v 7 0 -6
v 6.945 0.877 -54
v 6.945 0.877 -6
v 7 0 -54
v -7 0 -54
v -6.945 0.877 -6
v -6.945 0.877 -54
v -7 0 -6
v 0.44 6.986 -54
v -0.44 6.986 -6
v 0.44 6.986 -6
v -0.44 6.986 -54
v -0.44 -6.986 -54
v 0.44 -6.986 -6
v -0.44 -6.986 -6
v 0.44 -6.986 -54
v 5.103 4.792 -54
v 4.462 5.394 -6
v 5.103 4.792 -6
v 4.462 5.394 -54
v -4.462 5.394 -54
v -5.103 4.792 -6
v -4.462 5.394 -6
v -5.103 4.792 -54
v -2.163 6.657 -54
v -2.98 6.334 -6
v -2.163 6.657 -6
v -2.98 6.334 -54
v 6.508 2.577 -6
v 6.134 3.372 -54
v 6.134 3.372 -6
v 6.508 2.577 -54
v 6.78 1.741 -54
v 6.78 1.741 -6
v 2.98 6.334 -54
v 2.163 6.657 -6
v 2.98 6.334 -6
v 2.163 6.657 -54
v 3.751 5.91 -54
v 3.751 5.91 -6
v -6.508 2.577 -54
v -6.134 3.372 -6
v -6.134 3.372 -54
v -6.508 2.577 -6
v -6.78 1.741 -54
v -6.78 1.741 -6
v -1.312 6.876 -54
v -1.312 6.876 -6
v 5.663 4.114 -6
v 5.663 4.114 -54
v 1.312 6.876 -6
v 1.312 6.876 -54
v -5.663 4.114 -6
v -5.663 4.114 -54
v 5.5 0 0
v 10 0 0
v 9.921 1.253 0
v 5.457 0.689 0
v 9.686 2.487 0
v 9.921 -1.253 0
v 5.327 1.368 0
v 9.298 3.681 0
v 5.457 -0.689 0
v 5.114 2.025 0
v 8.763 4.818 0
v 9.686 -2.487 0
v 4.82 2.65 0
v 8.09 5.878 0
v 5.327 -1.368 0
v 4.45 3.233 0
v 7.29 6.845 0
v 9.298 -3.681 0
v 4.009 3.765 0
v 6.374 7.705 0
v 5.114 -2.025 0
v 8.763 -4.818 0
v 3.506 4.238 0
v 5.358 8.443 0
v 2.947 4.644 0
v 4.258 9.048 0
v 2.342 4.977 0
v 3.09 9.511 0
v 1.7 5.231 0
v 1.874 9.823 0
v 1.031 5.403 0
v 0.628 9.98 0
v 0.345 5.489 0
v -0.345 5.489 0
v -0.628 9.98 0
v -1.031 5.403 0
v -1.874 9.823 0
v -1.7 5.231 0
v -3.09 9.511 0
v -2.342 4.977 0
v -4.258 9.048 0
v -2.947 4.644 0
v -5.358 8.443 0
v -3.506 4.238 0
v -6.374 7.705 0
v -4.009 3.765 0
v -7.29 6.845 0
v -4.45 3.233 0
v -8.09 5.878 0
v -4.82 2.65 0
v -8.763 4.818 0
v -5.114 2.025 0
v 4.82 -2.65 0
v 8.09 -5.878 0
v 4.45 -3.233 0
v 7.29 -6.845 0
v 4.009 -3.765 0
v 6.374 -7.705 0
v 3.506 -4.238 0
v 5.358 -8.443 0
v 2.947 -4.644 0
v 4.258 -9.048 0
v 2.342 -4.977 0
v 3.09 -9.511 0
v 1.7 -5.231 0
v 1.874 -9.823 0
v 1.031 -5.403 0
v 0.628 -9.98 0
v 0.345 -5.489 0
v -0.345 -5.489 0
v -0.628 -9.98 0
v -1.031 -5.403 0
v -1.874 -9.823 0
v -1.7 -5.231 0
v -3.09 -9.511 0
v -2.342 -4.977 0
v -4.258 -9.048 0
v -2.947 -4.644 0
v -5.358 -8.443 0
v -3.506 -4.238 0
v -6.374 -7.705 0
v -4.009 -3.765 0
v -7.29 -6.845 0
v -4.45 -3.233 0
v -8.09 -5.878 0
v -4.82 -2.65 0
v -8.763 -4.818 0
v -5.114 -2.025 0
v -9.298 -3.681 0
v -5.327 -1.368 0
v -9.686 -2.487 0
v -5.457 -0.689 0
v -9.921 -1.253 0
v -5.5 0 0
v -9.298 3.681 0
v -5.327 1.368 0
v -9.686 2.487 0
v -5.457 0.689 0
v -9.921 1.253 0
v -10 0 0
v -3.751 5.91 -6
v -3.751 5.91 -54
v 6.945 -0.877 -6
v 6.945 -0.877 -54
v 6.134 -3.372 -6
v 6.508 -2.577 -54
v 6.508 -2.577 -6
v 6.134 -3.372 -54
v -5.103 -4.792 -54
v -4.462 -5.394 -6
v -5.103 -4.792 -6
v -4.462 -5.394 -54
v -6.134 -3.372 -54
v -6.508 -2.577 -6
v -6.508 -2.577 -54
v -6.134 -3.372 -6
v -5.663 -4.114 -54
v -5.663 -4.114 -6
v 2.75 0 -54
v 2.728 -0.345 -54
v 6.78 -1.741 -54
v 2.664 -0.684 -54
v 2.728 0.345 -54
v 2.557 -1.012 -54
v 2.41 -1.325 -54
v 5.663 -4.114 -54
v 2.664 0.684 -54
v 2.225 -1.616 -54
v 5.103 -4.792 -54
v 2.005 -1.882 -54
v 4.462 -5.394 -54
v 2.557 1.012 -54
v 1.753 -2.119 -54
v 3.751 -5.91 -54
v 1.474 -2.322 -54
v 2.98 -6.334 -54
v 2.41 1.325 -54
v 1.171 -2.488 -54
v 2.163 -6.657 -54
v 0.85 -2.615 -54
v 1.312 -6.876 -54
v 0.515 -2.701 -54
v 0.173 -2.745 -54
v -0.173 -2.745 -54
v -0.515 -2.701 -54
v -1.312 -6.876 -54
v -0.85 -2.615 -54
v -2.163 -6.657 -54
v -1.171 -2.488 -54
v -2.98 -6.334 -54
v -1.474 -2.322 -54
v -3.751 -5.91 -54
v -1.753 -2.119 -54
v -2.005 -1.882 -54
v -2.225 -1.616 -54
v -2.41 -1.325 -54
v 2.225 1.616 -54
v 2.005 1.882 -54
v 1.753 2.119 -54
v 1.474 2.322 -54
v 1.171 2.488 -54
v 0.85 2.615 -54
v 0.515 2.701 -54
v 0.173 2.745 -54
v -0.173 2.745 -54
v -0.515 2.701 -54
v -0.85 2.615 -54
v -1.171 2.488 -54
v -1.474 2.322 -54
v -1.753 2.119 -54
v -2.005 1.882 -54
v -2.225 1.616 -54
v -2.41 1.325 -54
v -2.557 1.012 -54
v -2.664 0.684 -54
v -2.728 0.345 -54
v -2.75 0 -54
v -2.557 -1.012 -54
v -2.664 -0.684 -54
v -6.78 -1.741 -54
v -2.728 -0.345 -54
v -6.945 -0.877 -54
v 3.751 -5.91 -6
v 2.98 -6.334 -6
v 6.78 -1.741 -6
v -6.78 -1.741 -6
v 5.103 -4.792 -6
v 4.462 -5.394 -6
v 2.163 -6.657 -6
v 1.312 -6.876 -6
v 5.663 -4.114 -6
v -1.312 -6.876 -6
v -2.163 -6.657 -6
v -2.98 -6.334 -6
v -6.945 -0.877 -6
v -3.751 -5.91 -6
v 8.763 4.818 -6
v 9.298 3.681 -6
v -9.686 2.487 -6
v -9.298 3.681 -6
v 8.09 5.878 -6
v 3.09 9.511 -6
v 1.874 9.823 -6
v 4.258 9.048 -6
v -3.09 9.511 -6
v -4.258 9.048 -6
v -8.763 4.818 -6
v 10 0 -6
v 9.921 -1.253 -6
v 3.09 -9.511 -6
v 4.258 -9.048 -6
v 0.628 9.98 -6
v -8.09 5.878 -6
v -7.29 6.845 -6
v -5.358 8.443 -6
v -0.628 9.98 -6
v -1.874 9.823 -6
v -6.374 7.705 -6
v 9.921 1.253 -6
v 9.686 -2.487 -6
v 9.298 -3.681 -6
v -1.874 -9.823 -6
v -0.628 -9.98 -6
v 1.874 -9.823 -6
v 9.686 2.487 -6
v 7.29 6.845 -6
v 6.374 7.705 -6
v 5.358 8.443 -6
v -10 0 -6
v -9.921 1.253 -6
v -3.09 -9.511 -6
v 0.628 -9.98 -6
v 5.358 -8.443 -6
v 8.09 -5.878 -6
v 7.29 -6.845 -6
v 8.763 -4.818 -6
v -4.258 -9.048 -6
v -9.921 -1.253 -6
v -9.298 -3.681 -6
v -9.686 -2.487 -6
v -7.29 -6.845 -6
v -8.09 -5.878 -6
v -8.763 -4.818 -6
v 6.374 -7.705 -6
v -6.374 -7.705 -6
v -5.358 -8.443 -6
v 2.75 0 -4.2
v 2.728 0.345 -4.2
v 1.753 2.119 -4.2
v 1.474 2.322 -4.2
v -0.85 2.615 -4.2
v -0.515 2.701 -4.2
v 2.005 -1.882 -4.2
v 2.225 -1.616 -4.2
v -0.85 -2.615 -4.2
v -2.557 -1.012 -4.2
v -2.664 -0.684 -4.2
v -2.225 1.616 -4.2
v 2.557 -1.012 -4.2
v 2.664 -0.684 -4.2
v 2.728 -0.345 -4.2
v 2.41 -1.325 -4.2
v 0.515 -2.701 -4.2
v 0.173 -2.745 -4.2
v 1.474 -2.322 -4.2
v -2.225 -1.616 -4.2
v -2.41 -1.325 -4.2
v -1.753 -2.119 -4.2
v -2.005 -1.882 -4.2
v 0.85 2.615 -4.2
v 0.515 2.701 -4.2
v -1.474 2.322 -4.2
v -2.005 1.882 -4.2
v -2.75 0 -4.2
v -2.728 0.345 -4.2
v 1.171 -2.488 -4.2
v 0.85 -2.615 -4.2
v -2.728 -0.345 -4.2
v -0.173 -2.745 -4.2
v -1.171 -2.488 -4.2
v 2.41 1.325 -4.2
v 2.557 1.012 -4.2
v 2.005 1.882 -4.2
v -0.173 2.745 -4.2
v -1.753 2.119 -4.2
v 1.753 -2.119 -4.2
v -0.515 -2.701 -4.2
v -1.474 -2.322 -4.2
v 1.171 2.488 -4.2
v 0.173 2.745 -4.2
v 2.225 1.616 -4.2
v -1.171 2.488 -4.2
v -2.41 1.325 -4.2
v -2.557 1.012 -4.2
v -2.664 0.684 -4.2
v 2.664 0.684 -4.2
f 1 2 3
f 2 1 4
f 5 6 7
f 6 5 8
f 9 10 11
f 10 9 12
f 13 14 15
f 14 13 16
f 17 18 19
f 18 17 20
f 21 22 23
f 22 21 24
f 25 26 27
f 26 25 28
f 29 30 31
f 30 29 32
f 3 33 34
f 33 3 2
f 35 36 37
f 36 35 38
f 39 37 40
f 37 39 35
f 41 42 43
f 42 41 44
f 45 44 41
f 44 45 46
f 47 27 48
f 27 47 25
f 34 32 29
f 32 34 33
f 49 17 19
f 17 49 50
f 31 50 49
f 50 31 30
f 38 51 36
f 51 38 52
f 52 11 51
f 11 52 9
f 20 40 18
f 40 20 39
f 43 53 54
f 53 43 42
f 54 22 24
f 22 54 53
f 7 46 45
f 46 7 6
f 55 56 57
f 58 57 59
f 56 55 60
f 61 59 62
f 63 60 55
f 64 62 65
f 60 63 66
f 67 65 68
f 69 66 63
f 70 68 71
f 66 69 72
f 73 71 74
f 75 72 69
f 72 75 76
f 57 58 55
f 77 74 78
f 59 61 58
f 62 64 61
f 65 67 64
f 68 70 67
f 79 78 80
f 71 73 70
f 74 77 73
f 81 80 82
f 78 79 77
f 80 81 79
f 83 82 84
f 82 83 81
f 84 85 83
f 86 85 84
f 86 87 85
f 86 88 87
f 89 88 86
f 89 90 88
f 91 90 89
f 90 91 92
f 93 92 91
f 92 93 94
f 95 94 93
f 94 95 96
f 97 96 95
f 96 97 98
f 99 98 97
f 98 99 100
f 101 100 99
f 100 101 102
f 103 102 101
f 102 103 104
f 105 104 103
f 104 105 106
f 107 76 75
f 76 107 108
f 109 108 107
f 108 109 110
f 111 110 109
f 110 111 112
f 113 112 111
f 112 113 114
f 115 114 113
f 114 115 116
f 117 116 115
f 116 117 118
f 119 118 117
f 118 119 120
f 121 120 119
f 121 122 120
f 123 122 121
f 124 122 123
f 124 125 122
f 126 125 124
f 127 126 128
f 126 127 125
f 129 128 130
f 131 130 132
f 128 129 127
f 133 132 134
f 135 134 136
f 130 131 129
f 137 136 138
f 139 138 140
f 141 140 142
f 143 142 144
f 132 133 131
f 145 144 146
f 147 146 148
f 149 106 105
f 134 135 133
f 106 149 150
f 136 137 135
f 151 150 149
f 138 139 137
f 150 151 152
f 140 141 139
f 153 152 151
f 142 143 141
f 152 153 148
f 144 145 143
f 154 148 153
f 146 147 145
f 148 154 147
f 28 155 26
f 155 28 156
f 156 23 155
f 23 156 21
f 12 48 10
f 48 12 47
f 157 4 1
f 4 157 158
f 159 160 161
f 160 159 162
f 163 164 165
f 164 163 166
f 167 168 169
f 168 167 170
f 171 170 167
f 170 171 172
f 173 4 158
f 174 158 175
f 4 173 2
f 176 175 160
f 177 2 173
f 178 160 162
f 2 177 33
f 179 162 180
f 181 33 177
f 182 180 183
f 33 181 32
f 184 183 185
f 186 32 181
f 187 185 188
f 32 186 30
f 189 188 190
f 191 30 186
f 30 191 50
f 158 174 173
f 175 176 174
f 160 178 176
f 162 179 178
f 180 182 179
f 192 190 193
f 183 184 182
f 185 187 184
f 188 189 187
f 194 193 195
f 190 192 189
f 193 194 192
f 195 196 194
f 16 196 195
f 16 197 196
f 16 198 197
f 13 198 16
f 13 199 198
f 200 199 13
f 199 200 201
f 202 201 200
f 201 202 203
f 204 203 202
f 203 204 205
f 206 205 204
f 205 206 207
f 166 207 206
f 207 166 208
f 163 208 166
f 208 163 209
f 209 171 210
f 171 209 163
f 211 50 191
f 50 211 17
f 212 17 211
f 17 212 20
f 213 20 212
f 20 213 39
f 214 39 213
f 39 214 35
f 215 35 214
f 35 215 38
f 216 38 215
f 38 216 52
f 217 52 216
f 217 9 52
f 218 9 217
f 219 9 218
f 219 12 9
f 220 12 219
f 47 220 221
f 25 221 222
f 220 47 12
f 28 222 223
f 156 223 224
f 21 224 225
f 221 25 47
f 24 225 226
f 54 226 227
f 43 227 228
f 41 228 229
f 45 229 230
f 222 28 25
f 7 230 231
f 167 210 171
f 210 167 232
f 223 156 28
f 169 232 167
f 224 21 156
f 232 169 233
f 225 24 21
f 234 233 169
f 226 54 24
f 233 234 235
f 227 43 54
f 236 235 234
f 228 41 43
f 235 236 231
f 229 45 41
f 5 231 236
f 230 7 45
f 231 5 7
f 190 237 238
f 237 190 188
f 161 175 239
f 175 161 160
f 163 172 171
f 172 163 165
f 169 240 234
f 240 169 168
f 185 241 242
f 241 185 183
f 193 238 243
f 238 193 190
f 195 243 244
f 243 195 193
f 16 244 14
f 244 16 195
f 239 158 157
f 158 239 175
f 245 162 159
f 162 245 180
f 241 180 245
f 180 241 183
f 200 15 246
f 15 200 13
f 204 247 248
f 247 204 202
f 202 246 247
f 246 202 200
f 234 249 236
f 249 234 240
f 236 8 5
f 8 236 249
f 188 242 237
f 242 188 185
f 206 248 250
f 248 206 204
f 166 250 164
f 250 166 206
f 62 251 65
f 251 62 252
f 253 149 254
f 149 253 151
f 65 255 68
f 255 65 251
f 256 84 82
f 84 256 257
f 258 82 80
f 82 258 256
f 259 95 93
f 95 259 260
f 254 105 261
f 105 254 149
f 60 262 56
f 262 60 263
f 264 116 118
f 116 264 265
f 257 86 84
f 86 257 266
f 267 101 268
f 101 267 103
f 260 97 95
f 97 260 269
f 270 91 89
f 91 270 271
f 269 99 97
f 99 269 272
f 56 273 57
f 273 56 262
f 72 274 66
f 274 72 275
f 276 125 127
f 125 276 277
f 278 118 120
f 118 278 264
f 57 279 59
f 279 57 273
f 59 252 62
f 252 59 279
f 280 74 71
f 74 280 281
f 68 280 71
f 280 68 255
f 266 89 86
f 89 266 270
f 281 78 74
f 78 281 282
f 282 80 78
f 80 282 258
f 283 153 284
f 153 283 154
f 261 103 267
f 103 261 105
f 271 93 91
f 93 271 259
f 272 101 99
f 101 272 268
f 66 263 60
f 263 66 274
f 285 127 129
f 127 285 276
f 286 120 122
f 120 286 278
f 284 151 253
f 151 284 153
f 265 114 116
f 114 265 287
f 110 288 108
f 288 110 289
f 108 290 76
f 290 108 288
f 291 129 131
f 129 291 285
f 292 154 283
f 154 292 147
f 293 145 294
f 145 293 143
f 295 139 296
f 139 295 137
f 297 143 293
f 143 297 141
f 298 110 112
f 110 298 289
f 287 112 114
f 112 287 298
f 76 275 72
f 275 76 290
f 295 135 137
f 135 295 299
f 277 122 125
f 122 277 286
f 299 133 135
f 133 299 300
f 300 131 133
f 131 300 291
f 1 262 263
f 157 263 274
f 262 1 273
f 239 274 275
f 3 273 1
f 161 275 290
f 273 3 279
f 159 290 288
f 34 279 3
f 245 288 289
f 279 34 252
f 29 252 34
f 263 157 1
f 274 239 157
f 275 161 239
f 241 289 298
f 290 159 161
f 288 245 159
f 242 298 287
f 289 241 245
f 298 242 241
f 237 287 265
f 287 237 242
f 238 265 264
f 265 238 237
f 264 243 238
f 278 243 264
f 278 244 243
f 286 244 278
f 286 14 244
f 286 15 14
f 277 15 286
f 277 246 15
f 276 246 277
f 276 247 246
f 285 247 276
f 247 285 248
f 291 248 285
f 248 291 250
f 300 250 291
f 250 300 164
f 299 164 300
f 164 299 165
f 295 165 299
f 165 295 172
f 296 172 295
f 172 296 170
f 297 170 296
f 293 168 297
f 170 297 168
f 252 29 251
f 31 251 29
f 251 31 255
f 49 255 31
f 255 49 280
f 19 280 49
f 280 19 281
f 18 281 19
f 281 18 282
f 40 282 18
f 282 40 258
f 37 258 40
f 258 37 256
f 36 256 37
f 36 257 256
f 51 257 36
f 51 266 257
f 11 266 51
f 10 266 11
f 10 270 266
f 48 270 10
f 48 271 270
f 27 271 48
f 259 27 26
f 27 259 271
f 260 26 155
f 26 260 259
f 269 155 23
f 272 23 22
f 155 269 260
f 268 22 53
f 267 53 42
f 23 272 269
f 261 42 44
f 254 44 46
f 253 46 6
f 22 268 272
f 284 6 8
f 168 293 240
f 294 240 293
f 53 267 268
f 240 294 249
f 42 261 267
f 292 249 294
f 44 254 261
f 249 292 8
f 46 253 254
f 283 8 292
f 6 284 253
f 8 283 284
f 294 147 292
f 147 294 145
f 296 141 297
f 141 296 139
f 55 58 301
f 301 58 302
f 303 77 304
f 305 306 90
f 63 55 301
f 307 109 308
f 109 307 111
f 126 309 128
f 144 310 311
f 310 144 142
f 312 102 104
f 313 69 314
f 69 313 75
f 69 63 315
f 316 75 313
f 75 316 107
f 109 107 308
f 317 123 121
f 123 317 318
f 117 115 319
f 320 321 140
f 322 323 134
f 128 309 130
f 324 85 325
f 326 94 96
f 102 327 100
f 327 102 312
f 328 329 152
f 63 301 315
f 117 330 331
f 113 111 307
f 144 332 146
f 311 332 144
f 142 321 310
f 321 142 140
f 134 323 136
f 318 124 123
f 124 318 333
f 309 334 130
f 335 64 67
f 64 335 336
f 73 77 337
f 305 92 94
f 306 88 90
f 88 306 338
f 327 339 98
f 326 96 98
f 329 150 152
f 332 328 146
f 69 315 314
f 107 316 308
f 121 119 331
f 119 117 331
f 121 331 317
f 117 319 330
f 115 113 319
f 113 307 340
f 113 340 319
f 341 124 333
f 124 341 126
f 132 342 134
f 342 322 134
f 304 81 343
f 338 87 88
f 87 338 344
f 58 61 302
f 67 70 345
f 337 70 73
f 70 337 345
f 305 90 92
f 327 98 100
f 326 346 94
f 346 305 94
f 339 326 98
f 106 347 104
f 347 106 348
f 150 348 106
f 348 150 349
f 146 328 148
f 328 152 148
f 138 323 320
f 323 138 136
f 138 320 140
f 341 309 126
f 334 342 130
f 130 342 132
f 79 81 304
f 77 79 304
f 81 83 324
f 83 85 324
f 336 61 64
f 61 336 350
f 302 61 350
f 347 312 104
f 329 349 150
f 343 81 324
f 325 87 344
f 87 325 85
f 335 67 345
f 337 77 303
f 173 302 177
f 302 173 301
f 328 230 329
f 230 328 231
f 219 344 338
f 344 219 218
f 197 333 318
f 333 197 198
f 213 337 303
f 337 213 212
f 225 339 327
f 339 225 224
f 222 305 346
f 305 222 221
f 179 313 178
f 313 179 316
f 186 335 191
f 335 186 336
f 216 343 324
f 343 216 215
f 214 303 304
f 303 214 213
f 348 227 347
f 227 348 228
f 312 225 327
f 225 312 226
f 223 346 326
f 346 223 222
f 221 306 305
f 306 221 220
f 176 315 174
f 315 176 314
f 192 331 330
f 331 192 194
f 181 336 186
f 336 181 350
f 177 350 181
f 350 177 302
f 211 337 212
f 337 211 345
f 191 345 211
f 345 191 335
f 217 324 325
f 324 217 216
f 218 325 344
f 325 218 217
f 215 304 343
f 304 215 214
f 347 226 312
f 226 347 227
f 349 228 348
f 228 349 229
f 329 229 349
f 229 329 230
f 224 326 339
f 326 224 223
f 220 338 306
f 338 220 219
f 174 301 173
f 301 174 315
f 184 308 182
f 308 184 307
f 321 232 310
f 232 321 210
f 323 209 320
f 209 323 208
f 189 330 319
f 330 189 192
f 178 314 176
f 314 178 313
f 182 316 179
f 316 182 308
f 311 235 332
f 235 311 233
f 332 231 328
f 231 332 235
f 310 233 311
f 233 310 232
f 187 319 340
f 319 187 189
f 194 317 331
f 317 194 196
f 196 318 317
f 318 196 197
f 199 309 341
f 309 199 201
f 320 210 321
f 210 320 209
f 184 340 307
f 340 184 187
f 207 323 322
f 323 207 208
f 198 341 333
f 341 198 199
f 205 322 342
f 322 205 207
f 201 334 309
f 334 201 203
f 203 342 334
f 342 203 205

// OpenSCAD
$fn = 50;


difference() {
	union() {
		translate(v = [0, 0, -54.0000000000]) {
			cylinder(h = 54, r = 7.0000000000);
		}
		translate(v = [0, 0, -6.0000000000]) {
			cylinder(h = 6, r = 10.0000000000);
		}
	}
	union() {
		translate(v = [0, 0, 0]) {
			rotate(a = [0, 0, 0]) {
				difference() {
					union() {
						#translate(v = [0, 0, -54.0000000000]) {
							cylinder(h = 54, r = 2.2500000000);
						}
						#translate(v = [0, 0, -4.2000000000]) {
							cylinder(h = 4.2000000000, r = 7.0000000000, r1 = 2.7500000000, r2 = 5.5000000000);
						}
						#translate(v = [0, 0, -54.0000000000]) {
							cylinder(h = 54, r = 2.7500000000);
						}
						#translate(v = [0, 0, -54.0000000000]) {
							cylinder(h = 54, r = 2.2500000000);
						}
					}
					union();
				}
			}
		}
	}
}
